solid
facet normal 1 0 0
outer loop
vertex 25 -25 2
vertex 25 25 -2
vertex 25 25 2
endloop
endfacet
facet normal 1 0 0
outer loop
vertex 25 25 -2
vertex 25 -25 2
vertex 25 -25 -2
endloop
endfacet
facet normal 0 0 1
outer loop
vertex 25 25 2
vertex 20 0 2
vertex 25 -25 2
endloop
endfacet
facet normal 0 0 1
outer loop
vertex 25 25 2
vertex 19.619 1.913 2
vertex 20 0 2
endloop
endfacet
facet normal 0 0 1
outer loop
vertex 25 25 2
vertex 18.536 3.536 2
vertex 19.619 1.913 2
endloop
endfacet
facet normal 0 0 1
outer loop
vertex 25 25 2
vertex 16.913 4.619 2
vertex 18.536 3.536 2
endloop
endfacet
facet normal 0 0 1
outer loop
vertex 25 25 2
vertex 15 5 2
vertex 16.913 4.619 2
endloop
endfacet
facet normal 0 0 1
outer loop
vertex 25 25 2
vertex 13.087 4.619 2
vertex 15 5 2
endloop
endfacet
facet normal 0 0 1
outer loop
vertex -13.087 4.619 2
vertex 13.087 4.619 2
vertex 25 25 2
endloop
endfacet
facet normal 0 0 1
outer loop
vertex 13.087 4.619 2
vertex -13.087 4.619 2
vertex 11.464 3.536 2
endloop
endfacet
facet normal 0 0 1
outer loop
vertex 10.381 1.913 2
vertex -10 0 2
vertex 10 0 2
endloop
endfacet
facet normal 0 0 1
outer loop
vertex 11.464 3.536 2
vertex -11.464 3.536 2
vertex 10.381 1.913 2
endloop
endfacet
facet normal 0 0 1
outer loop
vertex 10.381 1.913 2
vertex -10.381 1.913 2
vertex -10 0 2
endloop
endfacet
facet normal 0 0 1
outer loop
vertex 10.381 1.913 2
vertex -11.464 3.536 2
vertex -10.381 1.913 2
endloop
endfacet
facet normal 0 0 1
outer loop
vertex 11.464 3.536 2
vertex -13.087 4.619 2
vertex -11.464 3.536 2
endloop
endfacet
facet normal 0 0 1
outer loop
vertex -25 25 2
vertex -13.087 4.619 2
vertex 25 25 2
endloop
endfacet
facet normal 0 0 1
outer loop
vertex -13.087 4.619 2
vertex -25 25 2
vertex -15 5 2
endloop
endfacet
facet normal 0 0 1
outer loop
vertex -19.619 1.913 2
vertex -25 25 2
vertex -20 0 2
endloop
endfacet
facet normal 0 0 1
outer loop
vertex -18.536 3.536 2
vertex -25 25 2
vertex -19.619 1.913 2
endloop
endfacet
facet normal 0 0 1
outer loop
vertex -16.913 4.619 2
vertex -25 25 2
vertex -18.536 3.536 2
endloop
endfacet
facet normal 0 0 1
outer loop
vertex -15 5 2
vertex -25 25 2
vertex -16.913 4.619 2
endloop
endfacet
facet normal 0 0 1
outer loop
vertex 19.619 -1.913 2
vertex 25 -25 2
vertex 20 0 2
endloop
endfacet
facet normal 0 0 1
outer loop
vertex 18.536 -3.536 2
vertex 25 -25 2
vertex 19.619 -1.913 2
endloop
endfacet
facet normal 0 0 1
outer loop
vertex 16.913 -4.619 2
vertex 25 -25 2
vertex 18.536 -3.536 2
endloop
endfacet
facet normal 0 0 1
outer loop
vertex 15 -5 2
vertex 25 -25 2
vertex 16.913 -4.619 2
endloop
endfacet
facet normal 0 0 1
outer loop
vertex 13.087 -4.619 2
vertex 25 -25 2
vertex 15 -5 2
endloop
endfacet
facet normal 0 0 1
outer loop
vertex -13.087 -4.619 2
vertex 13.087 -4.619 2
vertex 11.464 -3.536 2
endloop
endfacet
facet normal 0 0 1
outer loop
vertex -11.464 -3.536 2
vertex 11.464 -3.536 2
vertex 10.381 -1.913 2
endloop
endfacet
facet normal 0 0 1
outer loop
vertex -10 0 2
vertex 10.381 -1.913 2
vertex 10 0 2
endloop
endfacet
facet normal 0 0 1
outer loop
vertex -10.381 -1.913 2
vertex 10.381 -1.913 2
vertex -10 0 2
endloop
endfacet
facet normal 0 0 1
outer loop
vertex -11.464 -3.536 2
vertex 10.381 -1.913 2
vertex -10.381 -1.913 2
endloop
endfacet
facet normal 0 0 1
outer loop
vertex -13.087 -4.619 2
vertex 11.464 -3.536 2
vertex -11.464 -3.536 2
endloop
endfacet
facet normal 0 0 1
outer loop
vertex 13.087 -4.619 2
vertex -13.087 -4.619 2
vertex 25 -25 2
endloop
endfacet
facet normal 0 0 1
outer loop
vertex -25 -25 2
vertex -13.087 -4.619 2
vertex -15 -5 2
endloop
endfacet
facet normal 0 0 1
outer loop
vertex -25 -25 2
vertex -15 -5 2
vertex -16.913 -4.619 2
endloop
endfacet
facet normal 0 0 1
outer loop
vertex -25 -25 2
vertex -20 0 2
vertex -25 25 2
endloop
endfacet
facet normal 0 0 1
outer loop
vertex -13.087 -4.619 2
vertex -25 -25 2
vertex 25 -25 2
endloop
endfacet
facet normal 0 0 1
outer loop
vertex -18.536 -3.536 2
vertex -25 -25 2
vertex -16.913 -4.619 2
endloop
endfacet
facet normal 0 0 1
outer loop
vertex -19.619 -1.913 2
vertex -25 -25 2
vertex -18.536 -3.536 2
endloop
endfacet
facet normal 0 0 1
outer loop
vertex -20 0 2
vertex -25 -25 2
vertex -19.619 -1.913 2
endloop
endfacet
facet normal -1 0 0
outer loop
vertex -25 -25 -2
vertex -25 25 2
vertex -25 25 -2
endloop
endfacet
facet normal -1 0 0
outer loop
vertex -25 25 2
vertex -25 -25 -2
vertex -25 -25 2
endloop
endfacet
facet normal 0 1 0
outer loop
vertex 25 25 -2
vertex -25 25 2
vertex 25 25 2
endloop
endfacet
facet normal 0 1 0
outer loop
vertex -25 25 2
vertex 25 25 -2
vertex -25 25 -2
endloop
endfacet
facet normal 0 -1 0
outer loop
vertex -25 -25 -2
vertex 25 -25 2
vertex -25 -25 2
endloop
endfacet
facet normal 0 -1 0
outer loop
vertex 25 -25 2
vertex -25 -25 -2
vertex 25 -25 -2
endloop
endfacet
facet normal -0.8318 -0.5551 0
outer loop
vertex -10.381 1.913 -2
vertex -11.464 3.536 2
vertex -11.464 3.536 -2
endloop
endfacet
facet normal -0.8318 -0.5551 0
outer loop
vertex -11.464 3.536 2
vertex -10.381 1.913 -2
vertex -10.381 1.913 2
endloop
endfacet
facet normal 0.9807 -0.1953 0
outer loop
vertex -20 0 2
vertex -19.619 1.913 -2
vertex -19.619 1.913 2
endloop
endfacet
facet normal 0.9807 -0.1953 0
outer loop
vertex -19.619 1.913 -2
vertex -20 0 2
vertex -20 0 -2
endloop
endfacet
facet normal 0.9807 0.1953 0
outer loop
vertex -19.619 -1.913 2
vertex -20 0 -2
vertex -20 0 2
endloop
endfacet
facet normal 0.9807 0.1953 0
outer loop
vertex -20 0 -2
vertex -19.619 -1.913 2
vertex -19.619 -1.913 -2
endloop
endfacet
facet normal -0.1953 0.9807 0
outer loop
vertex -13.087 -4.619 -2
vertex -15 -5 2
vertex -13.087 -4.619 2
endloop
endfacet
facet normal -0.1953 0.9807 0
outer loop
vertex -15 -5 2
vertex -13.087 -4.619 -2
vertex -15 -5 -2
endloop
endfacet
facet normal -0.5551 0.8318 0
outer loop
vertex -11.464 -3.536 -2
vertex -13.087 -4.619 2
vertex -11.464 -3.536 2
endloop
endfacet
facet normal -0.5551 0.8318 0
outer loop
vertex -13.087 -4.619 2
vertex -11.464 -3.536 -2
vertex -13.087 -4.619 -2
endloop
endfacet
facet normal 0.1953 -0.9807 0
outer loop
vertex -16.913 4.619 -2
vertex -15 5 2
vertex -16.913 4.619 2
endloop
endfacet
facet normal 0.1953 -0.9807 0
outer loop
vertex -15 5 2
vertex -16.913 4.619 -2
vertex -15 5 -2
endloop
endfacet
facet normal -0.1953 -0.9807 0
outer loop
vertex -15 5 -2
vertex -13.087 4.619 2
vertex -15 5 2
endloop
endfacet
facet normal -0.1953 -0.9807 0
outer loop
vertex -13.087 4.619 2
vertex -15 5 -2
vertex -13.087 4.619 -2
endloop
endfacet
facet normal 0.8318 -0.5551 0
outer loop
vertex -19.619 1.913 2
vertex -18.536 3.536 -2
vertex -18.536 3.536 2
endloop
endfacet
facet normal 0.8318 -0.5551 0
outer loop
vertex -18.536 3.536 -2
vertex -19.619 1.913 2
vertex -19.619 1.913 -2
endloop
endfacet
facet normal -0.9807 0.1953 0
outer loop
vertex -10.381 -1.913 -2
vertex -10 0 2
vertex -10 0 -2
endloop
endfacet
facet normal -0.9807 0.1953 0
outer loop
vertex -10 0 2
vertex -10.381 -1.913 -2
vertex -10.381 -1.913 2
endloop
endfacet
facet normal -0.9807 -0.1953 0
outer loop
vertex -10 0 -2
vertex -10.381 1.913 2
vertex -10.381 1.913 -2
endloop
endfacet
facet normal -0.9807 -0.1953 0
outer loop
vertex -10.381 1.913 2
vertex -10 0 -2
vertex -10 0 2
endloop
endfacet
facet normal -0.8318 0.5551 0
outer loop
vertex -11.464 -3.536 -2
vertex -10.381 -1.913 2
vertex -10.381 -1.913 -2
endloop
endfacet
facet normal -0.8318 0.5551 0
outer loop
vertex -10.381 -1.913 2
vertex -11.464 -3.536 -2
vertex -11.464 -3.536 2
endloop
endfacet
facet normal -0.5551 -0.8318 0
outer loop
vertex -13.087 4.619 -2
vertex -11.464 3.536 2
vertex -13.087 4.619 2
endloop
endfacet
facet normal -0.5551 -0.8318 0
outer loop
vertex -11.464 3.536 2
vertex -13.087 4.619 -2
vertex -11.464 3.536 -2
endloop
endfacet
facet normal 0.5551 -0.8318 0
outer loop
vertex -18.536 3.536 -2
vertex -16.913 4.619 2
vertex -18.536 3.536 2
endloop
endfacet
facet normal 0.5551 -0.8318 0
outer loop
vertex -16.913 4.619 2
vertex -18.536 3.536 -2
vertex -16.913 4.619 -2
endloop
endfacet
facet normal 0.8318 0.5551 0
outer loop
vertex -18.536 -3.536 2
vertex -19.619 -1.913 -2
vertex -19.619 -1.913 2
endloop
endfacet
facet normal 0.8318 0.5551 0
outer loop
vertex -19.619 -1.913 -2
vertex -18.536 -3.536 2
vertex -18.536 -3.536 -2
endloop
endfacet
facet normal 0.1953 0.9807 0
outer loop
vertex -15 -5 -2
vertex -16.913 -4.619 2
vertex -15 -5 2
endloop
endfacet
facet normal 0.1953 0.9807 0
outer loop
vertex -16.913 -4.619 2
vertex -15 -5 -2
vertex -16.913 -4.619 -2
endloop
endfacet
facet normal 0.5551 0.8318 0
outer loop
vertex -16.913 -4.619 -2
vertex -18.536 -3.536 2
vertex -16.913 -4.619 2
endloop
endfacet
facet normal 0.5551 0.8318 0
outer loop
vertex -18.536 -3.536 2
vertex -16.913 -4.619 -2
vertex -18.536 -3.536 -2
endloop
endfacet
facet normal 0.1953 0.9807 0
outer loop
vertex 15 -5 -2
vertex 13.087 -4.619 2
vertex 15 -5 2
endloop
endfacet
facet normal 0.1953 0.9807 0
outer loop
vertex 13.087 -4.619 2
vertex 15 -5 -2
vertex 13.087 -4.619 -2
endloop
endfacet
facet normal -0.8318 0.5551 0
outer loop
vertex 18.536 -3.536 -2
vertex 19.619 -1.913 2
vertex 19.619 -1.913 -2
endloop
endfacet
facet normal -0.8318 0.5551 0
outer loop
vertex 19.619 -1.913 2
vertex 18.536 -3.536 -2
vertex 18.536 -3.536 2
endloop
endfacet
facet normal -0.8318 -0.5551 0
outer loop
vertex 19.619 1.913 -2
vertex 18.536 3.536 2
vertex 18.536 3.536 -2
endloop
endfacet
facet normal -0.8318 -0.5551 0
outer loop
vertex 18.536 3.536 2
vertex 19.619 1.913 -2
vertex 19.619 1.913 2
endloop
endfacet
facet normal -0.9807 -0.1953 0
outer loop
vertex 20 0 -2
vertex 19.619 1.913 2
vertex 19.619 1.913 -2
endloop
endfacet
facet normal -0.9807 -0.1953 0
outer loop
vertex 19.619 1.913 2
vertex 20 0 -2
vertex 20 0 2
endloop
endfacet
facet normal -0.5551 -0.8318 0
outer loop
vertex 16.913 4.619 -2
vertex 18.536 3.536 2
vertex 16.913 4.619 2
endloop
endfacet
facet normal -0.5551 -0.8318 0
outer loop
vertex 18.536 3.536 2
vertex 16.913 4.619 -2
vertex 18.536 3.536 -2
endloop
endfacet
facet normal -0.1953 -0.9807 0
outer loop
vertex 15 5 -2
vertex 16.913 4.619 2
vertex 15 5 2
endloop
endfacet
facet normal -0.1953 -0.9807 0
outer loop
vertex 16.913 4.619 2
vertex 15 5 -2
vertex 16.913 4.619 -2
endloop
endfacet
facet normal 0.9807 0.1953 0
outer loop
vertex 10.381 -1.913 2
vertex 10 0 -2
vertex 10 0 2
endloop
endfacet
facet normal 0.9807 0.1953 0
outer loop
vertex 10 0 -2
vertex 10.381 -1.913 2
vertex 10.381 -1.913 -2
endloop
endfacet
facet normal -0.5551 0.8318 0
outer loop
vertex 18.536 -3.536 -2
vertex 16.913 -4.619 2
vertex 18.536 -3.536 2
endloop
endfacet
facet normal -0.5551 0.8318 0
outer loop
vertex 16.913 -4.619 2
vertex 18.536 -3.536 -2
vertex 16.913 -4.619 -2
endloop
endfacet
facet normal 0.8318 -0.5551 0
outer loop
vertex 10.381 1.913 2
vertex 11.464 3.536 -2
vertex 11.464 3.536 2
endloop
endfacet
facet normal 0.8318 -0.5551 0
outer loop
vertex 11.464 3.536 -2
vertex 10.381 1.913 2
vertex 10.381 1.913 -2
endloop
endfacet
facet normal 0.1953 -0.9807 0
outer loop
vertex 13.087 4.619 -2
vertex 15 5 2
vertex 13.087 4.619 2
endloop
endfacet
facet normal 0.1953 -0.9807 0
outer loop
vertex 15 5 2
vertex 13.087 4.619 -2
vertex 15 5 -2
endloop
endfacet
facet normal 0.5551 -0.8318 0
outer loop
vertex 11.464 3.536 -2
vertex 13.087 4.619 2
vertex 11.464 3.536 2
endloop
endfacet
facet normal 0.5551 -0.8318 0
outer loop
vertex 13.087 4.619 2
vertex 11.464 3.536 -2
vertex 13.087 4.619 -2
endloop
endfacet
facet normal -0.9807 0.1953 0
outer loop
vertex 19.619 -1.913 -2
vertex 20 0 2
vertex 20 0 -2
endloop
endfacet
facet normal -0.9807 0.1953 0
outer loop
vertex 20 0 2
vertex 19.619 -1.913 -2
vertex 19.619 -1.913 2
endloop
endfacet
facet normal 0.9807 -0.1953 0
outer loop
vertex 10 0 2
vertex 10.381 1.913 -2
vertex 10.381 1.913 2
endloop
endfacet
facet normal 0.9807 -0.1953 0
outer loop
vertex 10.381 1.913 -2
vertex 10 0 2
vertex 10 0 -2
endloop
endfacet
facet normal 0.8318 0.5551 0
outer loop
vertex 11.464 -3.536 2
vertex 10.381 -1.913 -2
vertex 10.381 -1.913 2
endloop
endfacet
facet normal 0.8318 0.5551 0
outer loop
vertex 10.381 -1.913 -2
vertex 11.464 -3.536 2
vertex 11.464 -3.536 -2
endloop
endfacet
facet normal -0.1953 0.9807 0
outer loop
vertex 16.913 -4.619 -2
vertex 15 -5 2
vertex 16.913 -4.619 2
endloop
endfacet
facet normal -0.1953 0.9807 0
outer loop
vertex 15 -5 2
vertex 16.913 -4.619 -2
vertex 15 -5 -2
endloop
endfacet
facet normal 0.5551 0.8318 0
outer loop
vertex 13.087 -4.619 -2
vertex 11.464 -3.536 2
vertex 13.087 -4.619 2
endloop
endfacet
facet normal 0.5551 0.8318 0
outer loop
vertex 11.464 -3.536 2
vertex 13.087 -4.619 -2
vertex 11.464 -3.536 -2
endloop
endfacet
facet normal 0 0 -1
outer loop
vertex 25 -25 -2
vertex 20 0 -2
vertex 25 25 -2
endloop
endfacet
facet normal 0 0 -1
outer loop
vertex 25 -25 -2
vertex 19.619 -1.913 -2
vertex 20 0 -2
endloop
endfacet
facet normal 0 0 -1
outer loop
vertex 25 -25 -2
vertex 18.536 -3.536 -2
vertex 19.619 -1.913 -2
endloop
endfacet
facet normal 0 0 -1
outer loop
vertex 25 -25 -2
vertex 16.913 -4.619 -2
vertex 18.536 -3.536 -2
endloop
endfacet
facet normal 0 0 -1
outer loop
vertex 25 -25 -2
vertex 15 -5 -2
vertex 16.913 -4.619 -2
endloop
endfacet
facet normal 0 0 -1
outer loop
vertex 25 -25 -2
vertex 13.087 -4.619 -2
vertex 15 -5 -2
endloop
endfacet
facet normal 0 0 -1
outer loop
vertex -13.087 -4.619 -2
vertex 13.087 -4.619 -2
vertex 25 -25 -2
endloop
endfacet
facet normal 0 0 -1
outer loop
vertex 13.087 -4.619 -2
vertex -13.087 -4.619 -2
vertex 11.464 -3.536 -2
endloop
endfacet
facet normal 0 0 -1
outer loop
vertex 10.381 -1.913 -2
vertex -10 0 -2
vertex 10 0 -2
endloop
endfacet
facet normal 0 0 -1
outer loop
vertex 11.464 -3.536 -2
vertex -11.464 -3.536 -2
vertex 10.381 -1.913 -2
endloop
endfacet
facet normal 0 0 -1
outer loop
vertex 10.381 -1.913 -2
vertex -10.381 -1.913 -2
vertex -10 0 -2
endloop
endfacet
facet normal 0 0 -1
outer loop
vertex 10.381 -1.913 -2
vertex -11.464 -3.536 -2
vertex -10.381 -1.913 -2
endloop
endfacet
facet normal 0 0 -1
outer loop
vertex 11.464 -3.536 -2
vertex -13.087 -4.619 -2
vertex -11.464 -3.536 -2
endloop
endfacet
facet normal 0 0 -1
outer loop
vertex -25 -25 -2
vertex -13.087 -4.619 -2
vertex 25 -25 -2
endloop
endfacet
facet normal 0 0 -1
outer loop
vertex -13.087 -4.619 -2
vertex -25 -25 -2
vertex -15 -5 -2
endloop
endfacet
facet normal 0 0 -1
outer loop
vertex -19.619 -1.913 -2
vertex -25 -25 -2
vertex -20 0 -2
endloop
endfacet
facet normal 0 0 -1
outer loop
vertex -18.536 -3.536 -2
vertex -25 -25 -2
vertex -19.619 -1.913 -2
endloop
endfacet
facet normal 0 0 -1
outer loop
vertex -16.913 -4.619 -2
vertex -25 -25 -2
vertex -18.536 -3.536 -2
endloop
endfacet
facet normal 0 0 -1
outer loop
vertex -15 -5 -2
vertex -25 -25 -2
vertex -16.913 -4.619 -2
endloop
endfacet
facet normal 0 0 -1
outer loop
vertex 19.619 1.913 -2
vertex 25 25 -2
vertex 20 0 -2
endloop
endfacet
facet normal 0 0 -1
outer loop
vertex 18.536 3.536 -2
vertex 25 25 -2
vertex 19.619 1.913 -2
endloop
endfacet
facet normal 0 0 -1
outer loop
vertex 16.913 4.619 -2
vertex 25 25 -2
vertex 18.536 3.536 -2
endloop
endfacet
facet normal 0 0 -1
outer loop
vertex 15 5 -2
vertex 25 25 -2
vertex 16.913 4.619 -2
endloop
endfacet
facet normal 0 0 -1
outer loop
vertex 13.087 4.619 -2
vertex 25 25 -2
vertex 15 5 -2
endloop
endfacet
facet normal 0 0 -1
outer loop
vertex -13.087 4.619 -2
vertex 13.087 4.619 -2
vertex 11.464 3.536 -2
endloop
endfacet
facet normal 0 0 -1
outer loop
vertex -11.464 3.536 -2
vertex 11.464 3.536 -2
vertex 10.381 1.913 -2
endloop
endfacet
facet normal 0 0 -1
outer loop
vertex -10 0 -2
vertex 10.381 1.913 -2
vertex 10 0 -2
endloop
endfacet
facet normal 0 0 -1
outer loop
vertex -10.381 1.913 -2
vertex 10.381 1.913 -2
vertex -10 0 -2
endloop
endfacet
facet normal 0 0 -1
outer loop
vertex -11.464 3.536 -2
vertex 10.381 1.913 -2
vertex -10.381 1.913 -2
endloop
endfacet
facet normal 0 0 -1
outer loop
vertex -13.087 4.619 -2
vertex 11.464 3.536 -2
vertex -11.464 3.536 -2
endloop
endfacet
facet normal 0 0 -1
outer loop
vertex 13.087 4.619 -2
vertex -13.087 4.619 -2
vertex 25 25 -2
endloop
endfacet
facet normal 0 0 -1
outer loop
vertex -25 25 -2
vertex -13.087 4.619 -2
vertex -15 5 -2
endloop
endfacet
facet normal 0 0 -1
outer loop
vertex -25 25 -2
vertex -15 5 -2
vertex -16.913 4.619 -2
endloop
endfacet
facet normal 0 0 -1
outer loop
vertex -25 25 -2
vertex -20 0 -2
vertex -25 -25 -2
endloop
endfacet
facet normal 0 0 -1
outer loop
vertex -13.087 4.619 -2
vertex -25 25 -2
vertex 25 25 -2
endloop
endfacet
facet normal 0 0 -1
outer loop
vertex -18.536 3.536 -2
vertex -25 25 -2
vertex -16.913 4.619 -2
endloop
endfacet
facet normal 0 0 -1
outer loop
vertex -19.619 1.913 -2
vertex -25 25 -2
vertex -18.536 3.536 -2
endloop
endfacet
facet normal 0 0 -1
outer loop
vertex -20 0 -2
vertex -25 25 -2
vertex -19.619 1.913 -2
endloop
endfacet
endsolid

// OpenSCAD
// Parameters for the flange plate
plate_length = 50;  // Length of the plate
plate_width = 50;   // Width of the plate
plate_thickness = 1; // Thickness of the plate (reduced to match the original model)
hole_diameter = 10; // Diameter of the holes
hole_spacing = 30;  // Distance between the centers of the two holes

// Function to create a single flange plate
module flange_plate() {
    difference() {
        // Base plate
        cube([plate_length, plate_width, plate_thickness], center = true);
        
        // Holes
        translate([-hole_spacing / 2, 0, 0])
            cylinder(h = plate_thickness + 1, d = hole_diameter, center = true);
        translate([hole_spacing / 2, 0, 0])
            cylinder(h = plate_thickness + 1, d = hole_diameter, center = true);
    }
}

// Assembly of the flange plates
module assembly() {
    // Layer 1: Top flange plate
    translate([0, 0, plate_thickness * 1.5])
        flange_plate();
    
    // Layer 2: Second flange plate
    translate([0, 0, plate_thickness * 0.5])
        flange_plate();
    
    // Layer 3: Third flange plate
    translate([0, 0, -plate_thickness * 0.5])
        flange_plate();
    
    // Layer 4: Bottom flange plate
    translate([0, 0, -plate_thickness * 1.5])
        flange_plate();
}

// Render the assembly
assembly();
